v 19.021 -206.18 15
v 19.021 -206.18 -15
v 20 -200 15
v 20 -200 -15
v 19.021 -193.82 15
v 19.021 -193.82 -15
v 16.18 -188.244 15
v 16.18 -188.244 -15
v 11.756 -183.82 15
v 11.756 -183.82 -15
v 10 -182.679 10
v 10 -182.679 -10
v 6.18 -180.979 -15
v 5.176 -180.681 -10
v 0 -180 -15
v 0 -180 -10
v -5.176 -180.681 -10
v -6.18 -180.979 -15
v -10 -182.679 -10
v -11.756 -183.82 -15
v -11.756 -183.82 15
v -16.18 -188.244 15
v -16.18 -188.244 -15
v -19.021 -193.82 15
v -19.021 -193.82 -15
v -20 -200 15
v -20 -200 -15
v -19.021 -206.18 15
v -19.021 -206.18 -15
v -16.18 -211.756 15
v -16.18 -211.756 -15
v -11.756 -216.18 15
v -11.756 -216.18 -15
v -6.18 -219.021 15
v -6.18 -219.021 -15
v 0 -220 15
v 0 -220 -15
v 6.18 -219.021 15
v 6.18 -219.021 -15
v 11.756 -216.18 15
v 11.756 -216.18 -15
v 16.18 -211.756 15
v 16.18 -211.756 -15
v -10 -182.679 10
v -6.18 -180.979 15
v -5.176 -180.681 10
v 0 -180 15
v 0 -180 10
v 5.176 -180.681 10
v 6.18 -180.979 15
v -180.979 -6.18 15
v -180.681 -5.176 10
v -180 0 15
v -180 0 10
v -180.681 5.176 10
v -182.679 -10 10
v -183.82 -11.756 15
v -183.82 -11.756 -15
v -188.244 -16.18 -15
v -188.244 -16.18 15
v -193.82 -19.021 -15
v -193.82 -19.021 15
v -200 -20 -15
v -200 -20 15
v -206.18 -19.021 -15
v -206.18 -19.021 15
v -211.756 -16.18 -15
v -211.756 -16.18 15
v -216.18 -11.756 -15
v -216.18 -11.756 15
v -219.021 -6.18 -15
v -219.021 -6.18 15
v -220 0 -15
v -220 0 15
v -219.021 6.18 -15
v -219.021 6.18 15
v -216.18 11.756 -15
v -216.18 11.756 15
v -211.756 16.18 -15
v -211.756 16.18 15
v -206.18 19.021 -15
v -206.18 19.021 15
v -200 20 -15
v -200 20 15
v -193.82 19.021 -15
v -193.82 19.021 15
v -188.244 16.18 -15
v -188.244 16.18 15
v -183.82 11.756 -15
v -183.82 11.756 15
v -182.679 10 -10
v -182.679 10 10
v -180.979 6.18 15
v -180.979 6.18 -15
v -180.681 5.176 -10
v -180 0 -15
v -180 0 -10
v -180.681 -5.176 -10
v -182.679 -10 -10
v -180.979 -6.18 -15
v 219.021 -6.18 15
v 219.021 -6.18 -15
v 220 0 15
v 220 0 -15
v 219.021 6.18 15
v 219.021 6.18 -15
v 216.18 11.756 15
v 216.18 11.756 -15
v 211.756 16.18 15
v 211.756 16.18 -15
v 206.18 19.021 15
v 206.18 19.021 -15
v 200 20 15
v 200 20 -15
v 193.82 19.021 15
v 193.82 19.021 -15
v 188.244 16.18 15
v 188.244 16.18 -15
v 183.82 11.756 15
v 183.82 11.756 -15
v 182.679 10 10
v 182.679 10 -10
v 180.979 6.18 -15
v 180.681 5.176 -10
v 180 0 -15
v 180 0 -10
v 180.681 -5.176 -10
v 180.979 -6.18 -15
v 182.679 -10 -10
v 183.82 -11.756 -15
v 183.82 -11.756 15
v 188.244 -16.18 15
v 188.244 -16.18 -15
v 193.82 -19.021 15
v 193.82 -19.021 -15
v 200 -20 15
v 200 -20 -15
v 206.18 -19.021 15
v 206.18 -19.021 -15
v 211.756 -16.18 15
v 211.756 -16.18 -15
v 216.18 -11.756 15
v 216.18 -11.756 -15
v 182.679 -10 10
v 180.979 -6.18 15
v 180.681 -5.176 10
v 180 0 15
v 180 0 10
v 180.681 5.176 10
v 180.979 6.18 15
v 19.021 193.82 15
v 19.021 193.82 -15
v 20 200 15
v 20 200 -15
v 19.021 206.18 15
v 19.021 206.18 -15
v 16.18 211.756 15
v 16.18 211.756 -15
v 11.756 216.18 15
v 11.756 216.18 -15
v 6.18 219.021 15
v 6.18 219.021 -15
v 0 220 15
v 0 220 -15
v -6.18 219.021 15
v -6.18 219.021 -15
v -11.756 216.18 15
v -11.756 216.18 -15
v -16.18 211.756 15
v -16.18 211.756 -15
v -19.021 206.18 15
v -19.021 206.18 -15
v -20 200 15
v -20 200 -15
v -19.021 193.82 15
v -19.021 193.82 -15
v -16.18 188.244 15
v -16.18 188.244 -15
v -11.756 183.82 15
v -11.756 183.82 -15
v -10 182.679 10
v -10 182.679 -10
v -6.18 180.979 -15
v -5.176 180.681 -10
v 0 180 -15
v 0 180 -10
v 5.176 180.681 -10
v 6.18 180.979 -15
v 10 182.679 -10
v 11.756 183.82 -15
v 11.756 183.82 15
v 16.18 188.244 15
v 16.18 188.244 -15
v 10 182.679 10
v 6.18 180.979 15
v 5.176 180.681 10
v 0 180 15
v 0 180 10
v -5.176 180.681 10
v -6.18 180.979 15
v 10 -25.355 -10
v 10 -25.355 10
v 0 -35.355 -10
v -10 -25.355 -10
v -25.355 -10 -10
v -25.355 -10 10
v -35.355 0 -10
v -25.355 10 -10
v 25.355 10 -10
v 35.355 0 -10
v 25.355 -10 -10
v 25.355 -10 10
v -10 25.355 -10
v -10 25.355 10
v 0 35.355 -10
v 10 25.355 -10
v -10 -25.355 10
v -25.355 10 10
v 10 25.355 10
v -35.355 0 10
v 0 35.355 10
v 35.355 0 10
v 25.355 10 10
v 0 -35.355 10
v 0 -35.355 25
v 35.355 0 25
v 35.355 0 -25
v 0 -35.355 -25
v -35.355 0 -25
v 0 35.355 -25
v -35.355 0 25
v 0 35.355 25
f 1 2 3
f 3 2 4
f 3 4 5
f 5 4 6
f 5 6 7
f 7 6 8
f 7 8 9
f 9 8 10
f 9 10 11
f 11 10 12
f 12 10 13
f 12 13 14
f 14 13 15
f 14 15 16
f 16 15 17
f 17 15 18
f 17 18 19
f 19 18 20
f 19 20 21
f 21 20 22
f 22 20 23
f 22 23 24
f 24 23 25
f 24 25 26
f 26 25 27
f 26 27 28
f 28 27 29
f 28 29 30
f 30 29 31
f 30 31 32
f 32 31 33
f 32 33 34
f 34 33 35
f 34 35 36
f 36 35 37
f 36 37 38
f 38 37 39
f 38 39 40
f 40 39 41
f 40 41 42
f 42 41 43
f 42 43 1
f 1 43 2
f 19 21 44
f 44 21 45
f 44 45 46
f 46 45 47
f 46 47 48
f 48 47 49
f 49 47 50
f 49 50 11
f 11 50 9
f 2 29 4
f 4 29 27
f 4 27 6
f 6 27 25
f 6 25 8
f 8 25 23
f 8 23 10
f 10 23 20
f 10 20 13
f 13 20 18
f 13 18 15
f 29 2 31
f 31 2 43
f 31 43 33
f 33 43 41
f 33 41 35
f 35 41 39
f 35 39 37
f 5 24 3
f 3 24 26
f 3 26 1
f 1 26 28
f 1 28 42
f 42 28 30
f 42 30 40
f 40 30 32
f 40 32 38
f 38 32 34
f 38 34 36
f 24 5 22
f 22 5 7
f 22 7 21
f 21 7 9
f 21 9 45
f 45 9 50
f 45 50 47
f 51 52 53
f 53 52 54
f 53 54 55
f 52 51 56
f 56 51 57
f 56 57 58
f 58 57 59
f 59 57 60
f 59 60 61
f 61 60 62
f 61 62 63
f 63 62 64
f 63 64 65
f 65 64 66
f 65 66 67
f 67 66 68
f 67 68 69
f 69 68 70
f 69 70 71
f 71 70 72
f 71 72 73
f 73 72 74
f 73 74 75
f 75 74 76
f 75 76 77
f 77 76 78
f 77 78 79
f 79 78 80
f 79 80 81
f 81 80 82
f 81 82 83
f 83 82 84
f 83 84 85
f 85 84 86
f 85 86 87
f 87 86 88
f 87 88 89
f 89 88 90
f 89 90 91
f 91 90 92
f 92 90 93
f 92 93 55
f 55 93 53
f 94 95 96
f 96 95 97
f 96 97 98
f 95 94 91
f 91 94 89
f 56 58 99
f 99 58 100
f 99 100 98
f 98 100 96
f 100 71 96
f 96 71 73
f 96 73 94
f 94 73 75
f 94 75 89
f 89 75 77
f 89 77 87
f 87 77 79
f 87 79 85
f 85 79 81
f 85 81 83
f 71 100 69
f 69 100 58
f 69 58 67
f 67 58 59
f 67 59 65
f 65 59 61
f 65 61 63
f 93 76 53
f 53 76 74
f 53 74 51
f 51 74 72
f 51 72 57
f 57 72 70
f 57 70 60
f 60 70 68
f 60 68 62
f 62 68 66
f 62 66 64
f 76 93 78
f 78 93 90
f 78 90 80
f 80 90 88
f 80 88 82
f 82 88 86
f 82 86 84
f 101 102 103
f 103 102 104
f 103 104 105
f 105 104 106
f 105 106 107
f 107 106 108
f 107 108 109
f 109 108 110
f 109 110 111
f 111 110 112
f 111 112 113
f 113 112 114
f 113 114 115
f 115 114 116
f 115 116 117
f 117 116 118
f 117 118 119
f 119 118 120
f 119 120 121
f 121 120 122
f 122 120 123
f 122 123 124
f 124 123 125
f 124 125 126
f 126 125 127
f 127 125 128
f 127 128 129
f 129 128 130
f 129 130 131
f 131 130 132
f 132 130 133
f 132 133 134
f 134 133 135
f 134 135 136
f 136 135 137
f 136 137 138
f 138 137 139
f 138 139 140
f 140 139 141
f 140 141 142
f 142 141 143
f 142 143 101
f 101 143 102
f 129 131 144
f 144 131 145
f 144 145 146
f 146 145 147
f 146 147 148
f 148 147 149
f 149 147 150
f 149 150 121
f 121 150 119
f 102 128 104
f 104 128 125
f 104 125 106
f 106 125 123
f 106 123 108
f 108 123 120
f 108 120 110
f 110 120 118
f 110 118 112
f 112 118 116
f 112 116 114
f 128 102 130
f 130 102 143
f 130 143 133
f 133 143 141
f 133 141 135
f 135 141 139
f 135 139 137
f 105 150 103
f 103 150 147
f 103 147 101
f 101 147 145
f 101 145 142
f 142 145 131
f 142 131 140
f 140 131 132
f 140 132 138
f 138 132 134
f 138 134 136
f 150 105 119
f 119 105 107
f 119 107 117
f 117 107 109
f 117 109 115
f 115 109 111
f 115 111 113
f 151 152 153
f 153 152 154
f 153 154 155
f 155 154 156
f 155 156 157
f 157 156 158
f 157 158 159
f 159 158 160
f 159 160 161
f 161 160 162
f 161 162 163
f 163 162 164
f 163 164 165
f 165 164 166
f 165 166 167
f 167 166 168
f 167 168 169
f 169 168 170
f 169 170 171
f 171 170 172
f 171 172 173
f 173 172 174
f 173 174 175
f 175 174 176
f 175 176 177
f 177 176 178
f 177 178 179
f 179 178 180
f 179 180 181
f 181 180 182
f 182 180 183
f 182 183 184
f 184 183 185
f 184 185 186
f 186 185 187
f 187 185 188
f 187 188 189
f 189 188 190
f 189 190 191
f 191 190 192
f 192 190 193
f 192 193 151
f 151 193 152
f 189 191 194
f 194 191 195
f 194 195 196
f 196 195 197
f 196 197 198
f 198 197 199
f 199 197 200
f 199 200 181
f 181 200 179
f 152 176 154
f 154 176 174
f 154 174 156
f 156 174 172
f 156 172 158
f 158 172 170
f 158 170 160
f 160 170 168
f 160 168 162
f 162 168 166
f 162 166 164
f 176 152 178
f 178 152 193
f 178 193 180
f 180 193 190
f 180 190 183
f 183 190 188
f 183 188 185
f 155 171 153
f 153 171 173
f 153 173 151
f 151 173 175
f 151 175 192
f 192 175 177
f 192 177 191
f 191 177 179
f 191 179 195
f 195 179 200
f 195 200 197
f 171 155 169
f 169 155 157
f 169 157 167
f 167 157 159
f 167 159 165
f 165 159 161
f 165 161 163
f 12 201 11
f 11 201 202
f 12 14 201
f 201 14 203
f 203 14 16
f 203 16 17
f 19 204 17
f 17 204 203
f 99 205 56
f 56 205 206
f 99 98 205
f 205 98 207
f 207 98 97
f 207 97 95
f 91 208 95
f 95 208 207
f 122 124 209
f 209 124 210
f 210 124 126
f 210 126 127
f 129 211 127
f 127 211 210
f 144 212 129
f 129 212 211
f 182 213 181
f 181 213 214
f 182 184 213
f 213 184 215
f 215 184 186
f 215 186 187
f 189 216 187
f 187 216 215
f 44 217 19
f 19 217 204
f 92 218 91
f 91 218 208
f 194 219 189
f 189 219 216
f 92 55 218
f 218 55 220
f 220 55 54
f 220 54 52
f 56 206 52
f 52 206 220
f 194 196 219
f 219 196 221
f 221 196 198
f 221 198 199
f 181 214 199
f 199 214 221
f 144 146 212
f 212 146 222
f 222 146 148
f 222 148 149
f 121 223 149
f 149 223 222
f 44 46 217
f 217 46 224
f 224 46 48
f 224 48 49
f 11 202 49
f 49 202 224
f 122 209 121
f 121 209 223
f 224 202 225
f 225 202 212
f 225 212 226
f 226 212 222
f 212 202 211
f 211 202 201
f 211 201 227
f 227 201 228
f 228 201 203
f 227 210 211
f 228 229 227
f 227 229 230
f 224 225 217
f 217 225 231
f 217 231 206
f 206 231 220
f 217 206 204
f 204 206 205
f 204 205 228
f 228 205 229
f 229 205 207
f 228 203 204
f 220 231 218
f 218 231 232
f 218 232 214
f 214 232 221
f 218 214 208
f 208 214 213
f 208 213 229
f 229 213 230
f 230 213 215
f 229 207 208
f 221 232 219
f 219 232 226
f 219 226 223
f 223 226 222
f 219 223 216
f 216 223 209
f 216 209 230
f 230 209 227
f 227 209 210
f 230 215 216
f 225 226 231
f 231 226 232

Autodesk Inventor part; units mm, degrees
ref_plane "YZ Plane" through (0, 0, 0) normal (1, 0, 0) x (0, 1, 0)
ref_plane "XZ Plane" through (0, 0, 0) normal (0, 1, 0) x (-1, 0, 0)
ref_plane "XY Plane" through (0, 0, 0) normal (0, 0, 1) x (1, 0, 0)
sketch "Skizze1" plane through (0, 0, 0) normal (0, 0, 1) x (1, 0, 0)
  line L0 (-35.3553, 0) -> (0, 35.3553)
  line L1 (0, 35.3553) -> (35.3553, 0)
  line L2 (35.3553, 0) -> (0, -35.3553)
  line L3 (0, -35.3553) -> (-35.3553, 0)
  line L4 (-35.3553, 0) -> (35.3553, 0) construction
  line L5 (0, 35.3553) -> (0, -35.3553) construction
  point P0 (0, 0)
  point P1 (0, 0)
  dimension "d0" = 50
  dimension "d1" = 50
extrude "Extrusion1" add sketch "Skizze1" along normal mid plane 50
sketch "Skizze2" plane through (0, 0, 0) normal (0, 0, 1) x (1, 0, 0)
  line L0 (-200, 10) -> (200, 10)
  line L1 (200, 10) -> (200, -10)
  line L2 (200, -10) -> (-200, -10)
  line L3 (-200, -10) -> (-200, 10)
  line L4 (-200, 10) -> (200, -10) construction
  line L5 (200, 10) -> (-200, -10) construction
  line L6 (-10, -200) -> (-10, 200)
  line L7 (-10, 200) -> (10, 200)
  line L8 (10, 200) -> (10, -200)
  line L9 (10, -200) -> (-10, -200)
  point P0 (0, 0)
  point P1 (0, 200)
  point P2 (-10, 0)
  point P3 (0, -200)
  point P4 (-10, -10)
  point P5 (10, -10)
  point P6 (10, 10)
  point P7 (-10, 10)
  dimension "d4" = 400
  dimension "d5" = 20
  dimension "d6" = 400
  dimension "d7" = 20
extrude "Extrusion2" add sketch "Skizze2" along normal mid plane 20
sketch "Skizze3" plane through (0, 0, 0) normal (0, 0, 1) x (1, 0, 0)
  line L0 (-200, -10) -> (-200, 10) projected
  circle A0 centre (-200, 0) radius 20
  circle A1 centre (0, -200) radius 20
  circle A2 centre (200, 0) radius 20
  circle A3 centre (0, 200) radius 20
  point P0 (0, 0)
  dimension "d10" = 40
  dimension "d13" = 360
extrude "Extrusion3" add sketch "Skizze3" along normal mid plane 30
properties part number "drohne_model" material "PC/ABS-Kunststoff"
